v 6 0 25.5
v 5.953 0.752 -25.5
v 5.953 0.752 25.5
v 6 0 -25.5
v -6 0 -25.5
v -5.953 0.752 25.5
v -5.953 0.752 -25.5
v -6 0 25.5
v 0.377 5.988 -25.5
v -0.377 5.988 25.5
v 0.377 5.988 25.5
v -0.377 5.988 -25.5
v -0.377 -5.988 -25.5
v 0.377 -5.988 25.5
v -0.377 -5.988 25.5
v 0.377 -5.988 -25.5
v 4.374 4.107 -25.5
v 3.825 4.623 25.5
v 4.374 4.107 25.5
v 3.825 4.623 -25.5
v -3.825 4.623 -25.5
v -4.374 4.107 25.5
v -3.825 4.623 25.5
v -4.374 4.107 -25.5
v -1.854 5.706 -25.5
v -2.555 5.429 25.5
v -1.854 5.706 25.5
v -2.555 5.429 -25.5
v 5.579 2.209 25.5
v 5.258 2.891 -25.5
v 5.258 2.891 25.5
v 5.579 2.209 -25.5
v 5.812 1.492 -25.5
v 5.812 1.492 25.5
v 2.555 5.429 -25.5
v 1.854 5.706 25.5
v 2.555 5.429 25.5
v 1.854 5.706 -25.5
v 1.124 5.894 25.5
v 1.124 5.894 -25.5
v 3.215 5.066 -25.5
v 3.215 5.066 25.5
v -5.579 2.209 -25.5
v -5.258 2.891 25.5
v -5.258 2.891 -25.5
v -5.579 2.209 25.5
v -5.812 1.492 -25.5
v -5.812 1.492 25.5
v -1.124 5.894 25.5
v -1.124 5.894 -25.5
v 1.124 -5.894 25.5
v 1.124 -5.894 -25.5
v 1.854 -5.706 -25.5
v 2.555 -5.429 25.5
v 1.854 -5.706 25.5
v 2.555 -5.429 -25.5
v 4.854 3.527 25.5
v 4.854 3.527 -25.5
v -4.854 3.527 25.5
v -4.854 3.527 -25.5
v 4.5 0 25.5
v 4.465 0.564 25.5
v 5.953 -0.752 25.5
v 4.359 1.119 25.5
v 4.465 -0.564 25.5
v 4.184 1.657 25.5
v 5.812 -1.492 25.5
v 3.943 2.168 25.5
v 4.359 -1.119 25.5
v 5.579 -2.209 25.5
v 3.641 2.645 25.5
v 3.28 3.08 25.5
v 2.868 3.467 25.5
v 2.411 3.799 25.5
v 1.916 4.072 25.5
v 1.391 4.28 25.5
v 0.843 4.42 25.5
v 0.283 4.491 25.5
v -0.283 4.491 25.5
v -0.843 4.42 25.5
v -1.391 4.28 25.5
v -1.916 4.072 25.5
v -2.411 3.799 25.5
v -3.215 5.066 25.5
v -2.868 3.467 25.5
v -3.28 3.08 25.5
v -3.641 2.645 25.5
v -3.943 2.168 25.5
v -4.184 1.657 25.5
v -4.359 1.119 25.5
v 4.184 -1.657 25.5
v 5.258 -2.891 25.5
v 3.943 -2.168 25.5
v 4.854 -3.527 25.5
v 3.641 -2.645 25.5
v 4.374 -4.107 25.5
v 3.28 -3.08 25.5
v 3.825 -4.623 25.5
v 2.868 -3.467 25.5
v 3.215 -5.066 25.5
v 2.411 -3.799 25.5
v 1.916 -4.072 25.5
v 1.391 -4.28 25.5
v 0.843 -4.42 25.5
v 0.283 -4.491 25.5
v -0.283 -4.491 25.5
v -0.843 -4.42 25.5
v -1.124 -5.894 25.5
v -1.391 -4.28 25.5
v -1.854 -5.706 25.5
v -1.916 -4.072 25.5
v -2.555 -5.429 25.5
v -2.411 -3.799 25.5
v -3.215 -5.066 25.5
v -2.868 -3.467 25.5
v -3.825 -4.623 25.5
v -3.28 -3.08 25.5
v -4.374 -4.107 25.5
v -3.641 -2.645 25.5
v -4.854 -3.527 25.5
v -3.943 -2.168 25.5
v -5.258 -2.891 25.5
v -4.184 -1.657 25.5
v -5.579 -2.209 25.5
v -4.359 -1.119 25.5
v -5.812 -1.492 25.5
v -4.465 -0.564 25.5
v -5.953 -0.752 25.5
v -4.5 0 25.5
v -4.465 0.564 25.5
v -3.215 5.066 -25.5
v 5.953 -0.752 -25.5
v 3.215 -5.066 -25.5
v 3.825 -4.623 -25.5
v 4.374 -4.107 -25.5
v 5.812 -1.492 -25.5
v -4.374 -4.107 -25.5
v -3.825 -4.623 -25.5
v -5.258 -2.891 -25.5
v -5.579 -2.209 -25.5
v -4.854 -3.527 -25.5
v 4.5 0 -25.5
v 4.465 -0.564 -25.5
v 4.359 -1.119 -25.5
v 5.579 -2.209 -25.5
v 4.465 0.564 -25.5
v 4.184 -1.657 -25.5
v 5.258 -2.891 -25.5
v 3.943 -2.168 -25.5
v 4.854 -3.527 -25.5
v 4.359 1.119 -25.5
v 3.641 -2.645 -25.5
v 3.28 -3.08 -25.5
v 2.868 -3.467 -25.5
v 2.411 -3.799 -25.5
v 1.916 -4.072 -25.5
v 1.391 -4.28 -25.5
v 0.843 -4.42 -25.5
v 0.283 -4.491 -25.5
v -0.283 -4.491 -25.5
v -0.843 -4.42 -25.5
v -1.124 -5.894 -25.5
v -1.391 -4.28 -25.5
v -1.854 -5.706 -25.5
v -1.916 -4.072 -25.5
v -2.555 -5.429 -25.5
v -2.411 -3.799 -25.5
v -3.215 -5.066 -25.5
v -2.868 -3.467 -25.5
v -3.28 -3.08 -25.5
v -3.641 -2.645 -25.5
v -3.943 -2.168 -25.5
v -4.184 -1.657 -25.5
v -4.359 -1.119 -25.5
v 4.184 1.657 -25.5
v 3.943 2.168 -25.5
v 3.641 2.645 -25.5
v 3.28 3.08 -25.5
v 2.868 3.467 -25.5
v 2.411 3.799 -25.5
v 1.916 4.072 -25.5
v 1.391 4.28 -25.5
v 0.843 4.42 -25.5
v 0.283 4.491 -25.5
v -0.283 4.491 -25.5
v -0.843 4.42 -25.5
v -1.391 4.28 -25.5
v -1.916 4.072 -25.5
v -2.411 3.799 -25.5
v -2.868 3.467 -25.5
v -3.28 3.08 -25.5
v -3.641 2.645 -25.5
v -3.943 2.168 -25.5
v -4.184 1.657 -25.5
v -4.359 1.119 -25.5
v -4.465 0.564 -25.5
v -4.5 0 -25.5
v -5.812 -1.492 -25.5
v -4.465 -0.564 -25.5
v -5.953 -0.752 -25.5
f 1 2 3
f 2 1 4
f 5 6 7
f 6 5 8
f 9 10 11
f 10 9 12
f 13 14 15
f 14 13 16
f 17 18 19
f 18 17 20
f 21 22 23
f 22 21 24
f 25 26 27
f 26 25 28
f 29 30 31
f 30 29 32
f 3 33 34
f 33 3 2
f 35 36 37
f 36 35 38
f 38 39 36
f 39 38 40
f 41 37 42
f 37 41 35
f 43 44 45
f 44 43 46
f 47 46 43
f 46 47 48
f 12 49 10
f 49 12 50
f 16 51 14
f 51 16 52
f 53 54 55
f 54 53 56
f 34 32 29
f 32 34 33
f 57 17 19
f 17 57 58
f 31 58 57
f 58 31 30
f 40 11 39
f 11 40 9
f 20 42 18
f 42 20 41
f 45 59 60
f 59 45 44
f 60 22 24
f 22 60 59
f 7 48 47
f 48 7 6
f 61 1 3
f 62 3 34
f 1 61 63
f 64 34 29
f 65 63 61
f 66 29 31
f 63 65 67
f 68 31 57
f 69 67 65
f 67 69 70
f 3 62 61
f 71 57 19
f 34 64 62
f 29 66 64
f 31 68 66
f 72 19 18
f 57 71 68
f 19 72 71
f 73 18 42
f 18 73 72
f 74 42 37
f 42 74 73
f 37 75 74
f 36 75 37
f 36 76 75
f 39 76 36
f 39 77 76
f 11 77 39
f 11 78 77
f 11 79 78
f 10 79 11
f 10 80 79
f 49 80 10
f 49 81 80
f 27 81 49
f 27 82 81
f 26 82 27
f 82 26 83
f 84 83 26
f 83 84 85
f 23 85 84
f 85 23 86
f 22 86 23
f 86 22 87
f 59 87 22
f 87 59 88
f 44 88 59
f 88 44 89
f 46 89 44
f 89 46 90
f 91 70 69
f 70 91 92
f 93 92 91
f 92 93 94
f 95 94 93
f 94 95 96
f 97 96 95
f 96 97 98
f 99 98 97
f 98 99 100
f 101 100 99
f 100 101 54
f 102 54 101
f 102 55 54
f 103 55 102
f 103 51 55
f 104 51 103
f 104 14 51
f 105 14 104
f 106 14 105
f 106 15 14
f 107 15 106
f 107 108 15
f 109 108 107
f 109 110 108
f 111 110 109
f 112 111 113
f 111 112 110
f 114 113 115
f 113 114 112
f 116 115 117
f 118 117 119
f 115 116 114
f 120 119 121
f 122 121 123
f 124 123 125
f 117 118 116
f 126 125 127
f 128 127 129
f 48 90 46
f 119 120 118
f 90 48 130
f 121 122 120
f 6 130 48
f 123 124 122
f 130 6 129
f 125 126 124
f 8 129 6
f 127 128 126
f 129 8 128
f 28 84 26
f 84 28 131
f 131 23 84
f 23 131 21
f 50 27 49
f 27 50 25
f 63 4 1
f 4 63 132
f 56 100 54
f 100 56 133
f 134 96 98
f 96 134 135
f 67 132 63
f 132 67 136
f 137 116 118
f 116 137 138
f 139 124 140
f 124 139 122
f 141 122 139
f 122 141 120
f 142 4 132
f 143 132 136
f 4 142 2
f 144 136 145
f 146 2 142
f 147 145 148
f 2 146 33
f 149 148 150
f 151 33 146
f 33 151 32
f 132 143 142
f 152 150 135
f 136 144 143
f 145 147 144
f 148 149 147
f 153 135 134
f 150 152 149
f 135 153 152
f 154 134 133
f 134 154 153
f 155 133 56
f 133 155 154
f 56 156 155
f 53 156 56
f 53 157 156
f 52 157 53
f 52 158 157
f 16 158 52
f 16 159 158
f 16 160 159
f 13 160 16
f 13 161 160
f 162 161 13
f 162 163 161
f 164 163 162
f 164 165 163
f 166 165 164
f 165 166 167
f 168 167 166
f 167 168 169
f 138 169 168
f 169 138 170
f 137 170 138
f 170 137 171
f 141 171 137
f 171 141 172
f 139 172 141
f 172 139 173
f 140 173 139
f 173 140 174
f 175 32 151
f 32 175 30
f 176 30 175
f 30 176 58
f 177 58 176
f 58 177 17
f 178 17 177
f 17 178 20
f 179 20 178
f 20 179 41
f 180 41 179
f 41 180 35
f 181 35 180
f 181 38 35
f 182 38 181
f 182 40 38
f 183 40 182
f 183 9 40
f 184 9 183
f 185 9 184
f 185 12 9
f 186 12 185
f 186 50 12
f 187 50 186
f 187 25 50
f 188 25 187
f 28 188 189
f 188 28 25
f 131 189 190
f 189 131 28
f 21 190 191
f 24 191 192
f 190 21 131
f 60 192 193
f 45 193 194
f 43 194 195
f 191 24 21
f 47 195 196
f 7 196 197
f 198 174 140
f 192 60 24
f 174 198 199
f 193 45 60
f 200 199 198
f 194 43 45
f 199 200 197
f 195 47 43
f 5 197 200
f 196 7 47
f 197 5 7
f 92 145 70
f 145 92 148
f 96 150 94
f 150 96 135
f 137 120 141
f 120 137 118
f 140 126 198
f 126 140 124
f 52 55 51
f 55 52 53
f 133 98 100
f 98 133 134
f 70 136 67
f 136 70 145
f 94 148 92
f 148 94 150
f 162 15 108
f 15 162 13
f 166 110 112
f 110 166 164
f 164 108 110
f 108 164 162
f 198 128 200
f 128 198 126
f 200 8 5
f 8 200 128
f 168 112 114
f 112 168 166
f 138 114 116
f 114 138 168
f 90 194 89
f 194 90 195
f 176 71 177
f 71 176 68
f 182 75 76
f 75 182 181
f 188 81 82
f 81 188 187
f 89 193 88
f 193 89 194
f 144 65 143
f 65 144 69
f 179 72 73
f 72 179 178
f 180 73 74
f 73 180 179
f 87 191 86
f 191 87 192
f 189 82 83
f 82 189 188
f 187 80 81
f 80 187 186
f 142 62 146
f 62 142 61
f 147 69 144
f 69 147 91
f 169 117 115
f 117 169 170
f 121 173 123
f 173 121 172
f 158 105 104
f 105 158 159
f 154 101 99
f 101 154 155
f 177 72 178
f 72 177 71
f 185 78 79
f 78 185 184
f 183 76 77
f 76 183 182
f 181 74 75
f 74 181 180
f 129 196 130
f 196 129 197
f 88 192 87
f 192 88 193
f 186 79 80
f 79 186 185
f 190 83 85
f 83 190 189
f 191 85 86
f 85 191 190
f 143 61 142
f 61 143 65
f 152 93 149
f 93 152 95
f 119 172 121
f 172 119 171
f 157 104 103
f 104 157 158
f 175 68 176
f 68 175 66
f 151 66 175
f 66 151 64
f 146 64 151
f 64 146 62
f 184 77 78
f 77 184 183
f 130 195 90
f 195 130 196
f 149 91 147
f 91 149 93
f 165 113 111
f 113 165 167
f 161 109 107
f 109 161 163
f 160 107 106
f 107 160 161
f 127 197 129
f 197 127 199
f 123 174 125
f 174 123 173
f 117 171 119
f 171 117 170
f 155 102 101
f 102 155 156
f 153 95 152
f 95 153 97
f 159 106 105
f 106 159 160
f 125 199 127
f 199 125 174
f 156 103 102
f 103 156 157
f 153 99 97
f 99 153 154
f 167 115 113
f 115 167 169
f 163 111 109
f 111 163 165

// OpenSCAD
$fn = 50;


difference() {
	union() {
		translate(v = [0, 0, -25.5000000000]) {
			cylinder(h = 51, r = 6.0000000000);
		}
	}
	union() {
		translate(v = [0, 0, -100.0000000000]) {
			cylinder(h = 200, r = 4.5000000000);
		}
	}
}
